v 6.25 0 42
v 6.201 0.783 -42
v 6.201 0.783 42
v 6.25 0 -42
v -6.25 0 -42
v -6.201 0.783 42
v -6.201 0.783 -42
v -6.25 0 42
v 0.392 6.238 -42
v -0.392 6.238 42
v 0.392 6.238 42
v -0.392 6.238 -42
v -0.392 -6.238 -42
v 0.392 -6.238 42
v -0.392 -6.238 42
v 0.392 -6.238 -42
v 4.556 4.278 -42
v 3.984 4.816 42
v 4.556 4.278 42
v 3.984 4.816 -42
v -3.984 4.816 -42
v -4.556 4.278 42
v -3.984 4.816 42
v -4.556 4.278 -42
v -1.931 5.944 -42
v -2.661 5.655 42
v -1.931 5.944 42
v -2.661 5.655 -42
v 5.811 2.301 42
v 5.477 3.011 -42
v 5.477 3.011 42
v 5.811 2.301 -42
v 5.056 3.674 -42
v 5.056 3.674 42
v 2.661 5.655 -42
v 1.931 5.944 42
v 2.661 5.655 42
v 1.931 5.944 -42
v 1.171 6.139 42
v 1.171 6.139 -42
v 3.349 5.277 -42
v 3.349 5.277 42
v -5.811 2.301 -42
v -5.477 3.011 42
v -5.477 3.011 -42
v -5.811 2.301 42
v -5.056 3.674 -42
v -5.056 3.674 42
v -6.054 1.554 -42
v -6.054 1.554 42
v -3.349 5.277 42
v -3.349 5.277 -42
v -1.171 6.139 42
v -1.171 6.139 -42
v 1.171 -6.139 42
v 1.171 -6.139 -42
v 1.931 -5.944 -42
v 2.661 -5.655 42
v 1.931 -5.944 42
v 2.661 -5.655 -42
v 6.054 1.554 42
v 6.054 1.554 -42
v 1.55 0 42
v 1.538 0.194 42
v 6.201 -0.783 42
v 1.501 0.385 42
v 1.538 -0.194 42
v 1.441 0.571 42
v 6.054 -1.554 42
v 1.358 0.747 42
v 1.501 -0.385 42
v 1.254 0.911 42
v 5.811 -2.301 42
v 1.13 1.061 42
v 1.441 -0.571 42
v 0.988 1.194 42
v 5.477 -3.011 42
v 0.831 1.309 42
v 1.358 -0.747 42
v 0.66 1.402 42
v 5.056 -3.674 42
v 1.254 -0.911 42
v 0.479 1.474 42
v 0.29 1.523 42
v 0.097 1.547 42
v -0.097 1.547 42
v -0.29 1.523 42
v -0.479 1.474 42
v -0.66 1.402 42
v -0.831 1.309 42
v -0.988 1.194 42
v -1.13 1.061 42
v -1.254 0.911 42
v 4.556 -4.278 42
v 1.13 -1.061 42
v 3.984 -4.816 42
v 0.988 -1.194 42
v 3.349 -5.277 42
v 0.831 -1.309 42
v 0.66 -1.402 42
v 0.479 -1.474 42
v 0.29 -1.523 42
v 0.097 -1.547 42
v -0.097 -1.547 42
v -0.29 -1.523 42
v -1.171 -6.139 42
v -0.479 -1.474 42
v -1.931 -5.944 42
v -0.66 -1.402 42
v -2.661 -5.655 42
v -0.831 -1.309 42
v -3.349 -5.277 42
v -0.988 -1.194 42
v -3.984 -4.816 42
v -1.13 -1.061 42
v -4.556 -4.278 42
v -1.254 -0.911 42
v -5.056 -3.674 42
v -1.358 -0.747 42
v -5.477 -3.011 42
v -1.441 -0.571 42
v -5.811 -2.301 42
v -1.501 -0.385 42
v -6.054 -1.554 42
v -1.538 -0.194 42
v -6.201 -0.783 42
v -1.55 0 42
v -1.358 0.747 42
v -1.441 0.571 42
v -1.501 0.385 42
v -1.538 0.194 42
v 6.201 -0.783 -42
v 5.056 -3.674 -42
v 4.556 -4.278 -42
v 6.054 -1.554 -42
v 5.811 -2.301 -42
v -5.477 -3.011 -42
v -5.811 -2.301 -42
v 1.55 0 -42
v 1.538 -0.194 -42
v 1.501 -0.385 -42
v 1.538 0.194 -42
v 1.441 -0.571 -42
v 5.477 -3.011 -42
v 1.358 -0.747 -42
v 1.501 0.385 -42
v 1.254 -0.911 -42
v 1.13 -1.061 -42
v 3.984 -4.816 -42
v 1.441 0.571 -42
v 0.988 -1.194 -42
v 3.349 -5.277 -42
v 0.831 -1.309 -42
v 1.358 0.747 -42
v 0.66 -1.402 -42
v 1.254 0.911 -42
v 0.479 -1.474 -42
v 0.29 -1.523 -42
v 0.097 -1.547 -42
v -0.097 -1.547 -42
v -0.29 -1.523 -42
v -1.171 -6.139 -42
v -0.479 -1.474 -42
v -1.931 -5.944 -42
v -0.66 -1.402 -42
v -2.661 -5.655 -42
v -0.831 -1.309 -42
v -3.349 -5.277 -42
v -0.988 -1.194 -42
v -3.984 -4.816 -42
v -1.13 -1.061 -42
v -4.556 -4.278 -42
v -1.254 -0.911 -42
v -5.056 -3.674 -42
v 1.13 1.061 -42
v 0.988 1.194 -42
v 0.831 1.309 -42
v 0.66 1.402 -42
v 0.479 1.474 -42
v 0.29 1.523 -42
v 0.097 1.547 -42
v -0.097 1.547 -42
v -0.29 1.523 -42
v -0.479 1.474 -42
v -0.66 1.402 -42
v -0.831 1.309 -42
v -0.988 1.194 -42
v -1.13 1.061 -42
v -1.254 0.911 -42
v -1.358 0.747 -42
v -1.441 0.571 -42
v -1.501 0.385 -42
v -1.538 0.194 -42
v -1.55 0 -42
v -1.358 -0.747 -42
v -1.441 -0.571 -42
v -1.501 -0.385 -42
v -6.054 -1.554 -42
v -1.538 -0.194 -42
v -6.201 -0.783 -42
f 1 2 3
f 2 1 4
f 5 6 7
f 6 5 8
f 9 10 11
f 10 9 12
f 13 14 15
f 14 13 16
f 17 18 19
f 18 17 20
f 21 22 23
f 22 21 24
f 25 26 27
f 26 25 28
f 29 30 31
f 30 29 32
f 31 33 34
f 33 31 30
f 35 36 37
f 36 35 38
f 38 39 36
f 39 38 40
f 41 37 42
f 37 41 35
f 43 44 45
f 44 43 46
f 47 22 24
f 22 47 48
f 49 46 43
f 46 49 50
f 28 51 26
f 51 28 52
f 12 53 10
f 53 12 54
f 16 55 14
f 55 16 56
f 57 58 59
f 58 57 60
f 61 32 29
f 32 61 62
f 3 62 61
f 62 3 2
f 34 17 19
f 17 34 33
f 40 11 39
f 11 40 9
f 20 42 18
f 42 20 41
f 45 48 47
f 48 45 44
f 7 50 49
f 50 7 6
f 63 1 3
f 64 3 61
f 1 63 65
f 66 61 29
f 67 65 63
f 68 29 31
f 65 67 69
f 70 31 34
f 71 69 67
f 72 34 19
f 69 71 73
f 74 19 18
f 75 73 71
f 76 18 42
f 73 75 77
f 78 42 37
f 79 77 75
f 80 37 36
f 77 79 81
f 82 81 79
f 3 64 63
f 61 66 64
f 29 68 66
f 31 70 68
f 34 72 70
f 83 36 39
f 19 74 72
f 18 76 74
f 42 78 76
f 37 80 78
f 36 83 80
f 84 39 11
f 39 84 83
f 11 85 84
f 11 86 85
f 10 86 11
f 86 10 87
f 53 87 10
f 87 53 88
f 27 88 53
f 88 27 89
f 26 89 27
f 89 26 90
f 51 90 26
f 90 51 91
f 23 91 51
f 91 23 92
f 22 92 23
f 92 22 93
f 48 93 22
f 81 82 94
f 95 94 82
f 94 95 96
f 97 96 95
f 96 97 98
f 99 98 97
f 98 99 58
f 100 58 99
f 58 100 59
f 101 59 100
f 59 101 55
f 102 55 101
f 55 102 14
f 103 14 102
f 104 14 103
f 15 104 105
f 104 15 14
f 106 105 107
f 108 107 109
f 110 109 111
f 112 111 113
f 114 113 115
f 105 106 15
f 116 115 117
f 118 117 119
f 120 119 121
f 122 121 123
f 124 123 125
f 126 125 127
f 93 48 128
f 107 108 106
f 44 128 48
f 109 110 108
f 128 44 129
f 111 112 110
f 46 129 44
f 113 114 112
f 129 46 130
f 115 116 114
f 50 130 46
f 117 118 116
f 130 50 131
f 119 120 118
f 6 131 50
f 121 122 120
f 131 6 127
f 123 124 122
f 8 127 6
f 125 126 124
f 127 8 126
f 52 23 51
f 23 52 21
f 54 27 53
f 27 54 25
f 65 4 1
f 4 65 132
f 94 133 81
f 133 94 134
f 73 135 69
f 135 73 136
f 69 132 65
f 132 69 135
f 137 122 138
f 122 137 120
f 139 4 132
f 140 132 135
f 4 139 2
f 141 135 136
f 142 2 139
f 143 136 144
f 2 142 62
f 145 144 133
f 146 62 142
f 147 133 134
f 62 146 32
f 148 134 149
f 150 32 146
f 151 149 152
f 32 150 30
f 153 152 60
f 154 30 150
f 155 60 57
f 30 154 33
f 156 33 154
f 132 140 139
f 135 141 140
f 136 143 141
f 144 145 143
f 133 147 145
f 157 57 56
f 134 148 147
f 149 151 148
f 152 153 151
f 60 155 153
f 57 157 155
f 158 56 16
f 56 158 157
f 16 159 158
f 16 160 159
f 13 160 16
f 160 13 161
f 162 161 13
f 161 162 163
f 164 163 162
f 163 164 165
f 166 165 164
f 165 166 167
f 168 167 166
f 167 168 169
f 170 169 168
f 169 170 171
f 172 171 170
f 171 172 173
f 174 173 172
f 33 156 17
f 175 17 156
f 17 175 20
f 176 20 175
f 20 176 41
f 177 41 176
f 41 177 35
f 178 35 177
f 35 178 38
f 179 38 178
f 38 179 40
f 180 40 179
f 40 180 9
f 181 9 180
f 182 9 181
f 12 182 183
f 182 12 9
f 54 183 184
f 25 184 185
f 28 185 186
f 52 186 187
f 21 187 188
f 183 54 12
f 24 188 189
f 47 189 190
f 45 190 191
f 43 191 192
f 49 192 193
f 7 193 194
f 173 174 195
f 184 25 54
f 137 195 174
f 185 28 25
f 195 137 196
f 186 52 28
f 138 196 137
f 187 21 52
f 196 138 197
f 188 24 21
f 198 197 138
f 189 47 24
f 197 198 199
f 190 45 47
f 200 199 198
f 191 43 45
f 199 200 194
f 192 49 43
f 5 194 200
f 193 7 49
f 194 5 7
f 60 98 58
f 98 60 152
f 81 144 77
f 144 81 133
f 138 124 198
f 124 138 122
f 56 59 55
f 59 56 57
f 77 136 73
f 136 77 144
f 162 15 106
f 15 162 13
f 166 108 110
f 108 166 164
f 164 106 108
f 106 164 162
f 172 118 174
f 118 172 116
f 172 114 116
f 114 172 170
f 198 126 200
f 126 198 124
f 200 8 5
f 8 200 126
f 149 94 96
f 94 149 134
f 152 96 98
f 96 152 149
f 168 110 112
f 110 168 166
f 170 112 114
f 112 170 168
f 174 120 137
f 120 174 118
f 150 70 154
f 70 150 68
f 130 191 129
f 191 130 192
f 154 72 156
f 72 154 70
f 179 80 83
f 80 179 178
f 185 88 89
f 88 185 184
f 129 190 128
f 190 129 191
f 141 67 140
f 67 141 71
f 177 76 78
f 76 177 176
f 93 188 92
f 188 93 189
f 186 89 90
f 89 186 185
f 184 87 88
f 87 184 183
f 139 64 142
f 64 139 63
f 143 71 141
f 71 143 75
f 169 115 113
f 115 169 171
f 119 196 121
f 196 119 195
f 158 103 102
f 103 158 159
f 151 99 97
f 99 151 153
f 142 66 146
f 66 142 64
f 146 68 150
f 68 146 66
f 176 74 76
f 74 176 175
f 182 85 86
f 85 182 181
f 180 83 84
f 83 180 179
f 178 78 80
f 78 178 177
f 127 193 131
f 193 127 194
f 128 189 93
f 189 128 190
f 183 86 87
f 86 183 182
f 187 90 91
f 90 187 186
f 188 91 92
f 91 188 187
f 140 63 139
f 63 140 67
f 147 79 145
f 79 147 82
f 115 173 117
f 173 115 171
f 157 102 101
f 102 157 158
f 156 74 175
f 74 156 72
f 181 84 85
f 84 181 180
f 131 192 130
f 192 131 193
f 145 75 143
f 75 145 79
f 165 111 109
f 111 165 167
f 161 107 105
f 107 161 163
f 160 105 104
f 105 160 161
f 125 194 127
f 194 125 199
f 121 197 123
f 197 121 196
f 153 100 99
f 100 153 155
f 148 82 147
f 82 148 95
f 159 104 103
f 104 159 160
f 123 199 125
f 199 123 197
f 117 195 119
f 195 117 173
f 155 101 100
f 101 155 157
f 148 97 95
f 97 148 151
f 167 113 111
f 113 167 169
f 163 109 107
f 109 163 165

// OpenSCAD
$fn = 50;


difference() {
	union() {
		translate(v = [0, 0, -42.0000000000]) {
			cylinder(h = 84, r = 6.2500000000);
		}
	}
	union() {
		translate(v = [0, 0, -100.0000000000]) {
			cylinder(h = 200, r = 1.5500000000);
		}
	}
}
